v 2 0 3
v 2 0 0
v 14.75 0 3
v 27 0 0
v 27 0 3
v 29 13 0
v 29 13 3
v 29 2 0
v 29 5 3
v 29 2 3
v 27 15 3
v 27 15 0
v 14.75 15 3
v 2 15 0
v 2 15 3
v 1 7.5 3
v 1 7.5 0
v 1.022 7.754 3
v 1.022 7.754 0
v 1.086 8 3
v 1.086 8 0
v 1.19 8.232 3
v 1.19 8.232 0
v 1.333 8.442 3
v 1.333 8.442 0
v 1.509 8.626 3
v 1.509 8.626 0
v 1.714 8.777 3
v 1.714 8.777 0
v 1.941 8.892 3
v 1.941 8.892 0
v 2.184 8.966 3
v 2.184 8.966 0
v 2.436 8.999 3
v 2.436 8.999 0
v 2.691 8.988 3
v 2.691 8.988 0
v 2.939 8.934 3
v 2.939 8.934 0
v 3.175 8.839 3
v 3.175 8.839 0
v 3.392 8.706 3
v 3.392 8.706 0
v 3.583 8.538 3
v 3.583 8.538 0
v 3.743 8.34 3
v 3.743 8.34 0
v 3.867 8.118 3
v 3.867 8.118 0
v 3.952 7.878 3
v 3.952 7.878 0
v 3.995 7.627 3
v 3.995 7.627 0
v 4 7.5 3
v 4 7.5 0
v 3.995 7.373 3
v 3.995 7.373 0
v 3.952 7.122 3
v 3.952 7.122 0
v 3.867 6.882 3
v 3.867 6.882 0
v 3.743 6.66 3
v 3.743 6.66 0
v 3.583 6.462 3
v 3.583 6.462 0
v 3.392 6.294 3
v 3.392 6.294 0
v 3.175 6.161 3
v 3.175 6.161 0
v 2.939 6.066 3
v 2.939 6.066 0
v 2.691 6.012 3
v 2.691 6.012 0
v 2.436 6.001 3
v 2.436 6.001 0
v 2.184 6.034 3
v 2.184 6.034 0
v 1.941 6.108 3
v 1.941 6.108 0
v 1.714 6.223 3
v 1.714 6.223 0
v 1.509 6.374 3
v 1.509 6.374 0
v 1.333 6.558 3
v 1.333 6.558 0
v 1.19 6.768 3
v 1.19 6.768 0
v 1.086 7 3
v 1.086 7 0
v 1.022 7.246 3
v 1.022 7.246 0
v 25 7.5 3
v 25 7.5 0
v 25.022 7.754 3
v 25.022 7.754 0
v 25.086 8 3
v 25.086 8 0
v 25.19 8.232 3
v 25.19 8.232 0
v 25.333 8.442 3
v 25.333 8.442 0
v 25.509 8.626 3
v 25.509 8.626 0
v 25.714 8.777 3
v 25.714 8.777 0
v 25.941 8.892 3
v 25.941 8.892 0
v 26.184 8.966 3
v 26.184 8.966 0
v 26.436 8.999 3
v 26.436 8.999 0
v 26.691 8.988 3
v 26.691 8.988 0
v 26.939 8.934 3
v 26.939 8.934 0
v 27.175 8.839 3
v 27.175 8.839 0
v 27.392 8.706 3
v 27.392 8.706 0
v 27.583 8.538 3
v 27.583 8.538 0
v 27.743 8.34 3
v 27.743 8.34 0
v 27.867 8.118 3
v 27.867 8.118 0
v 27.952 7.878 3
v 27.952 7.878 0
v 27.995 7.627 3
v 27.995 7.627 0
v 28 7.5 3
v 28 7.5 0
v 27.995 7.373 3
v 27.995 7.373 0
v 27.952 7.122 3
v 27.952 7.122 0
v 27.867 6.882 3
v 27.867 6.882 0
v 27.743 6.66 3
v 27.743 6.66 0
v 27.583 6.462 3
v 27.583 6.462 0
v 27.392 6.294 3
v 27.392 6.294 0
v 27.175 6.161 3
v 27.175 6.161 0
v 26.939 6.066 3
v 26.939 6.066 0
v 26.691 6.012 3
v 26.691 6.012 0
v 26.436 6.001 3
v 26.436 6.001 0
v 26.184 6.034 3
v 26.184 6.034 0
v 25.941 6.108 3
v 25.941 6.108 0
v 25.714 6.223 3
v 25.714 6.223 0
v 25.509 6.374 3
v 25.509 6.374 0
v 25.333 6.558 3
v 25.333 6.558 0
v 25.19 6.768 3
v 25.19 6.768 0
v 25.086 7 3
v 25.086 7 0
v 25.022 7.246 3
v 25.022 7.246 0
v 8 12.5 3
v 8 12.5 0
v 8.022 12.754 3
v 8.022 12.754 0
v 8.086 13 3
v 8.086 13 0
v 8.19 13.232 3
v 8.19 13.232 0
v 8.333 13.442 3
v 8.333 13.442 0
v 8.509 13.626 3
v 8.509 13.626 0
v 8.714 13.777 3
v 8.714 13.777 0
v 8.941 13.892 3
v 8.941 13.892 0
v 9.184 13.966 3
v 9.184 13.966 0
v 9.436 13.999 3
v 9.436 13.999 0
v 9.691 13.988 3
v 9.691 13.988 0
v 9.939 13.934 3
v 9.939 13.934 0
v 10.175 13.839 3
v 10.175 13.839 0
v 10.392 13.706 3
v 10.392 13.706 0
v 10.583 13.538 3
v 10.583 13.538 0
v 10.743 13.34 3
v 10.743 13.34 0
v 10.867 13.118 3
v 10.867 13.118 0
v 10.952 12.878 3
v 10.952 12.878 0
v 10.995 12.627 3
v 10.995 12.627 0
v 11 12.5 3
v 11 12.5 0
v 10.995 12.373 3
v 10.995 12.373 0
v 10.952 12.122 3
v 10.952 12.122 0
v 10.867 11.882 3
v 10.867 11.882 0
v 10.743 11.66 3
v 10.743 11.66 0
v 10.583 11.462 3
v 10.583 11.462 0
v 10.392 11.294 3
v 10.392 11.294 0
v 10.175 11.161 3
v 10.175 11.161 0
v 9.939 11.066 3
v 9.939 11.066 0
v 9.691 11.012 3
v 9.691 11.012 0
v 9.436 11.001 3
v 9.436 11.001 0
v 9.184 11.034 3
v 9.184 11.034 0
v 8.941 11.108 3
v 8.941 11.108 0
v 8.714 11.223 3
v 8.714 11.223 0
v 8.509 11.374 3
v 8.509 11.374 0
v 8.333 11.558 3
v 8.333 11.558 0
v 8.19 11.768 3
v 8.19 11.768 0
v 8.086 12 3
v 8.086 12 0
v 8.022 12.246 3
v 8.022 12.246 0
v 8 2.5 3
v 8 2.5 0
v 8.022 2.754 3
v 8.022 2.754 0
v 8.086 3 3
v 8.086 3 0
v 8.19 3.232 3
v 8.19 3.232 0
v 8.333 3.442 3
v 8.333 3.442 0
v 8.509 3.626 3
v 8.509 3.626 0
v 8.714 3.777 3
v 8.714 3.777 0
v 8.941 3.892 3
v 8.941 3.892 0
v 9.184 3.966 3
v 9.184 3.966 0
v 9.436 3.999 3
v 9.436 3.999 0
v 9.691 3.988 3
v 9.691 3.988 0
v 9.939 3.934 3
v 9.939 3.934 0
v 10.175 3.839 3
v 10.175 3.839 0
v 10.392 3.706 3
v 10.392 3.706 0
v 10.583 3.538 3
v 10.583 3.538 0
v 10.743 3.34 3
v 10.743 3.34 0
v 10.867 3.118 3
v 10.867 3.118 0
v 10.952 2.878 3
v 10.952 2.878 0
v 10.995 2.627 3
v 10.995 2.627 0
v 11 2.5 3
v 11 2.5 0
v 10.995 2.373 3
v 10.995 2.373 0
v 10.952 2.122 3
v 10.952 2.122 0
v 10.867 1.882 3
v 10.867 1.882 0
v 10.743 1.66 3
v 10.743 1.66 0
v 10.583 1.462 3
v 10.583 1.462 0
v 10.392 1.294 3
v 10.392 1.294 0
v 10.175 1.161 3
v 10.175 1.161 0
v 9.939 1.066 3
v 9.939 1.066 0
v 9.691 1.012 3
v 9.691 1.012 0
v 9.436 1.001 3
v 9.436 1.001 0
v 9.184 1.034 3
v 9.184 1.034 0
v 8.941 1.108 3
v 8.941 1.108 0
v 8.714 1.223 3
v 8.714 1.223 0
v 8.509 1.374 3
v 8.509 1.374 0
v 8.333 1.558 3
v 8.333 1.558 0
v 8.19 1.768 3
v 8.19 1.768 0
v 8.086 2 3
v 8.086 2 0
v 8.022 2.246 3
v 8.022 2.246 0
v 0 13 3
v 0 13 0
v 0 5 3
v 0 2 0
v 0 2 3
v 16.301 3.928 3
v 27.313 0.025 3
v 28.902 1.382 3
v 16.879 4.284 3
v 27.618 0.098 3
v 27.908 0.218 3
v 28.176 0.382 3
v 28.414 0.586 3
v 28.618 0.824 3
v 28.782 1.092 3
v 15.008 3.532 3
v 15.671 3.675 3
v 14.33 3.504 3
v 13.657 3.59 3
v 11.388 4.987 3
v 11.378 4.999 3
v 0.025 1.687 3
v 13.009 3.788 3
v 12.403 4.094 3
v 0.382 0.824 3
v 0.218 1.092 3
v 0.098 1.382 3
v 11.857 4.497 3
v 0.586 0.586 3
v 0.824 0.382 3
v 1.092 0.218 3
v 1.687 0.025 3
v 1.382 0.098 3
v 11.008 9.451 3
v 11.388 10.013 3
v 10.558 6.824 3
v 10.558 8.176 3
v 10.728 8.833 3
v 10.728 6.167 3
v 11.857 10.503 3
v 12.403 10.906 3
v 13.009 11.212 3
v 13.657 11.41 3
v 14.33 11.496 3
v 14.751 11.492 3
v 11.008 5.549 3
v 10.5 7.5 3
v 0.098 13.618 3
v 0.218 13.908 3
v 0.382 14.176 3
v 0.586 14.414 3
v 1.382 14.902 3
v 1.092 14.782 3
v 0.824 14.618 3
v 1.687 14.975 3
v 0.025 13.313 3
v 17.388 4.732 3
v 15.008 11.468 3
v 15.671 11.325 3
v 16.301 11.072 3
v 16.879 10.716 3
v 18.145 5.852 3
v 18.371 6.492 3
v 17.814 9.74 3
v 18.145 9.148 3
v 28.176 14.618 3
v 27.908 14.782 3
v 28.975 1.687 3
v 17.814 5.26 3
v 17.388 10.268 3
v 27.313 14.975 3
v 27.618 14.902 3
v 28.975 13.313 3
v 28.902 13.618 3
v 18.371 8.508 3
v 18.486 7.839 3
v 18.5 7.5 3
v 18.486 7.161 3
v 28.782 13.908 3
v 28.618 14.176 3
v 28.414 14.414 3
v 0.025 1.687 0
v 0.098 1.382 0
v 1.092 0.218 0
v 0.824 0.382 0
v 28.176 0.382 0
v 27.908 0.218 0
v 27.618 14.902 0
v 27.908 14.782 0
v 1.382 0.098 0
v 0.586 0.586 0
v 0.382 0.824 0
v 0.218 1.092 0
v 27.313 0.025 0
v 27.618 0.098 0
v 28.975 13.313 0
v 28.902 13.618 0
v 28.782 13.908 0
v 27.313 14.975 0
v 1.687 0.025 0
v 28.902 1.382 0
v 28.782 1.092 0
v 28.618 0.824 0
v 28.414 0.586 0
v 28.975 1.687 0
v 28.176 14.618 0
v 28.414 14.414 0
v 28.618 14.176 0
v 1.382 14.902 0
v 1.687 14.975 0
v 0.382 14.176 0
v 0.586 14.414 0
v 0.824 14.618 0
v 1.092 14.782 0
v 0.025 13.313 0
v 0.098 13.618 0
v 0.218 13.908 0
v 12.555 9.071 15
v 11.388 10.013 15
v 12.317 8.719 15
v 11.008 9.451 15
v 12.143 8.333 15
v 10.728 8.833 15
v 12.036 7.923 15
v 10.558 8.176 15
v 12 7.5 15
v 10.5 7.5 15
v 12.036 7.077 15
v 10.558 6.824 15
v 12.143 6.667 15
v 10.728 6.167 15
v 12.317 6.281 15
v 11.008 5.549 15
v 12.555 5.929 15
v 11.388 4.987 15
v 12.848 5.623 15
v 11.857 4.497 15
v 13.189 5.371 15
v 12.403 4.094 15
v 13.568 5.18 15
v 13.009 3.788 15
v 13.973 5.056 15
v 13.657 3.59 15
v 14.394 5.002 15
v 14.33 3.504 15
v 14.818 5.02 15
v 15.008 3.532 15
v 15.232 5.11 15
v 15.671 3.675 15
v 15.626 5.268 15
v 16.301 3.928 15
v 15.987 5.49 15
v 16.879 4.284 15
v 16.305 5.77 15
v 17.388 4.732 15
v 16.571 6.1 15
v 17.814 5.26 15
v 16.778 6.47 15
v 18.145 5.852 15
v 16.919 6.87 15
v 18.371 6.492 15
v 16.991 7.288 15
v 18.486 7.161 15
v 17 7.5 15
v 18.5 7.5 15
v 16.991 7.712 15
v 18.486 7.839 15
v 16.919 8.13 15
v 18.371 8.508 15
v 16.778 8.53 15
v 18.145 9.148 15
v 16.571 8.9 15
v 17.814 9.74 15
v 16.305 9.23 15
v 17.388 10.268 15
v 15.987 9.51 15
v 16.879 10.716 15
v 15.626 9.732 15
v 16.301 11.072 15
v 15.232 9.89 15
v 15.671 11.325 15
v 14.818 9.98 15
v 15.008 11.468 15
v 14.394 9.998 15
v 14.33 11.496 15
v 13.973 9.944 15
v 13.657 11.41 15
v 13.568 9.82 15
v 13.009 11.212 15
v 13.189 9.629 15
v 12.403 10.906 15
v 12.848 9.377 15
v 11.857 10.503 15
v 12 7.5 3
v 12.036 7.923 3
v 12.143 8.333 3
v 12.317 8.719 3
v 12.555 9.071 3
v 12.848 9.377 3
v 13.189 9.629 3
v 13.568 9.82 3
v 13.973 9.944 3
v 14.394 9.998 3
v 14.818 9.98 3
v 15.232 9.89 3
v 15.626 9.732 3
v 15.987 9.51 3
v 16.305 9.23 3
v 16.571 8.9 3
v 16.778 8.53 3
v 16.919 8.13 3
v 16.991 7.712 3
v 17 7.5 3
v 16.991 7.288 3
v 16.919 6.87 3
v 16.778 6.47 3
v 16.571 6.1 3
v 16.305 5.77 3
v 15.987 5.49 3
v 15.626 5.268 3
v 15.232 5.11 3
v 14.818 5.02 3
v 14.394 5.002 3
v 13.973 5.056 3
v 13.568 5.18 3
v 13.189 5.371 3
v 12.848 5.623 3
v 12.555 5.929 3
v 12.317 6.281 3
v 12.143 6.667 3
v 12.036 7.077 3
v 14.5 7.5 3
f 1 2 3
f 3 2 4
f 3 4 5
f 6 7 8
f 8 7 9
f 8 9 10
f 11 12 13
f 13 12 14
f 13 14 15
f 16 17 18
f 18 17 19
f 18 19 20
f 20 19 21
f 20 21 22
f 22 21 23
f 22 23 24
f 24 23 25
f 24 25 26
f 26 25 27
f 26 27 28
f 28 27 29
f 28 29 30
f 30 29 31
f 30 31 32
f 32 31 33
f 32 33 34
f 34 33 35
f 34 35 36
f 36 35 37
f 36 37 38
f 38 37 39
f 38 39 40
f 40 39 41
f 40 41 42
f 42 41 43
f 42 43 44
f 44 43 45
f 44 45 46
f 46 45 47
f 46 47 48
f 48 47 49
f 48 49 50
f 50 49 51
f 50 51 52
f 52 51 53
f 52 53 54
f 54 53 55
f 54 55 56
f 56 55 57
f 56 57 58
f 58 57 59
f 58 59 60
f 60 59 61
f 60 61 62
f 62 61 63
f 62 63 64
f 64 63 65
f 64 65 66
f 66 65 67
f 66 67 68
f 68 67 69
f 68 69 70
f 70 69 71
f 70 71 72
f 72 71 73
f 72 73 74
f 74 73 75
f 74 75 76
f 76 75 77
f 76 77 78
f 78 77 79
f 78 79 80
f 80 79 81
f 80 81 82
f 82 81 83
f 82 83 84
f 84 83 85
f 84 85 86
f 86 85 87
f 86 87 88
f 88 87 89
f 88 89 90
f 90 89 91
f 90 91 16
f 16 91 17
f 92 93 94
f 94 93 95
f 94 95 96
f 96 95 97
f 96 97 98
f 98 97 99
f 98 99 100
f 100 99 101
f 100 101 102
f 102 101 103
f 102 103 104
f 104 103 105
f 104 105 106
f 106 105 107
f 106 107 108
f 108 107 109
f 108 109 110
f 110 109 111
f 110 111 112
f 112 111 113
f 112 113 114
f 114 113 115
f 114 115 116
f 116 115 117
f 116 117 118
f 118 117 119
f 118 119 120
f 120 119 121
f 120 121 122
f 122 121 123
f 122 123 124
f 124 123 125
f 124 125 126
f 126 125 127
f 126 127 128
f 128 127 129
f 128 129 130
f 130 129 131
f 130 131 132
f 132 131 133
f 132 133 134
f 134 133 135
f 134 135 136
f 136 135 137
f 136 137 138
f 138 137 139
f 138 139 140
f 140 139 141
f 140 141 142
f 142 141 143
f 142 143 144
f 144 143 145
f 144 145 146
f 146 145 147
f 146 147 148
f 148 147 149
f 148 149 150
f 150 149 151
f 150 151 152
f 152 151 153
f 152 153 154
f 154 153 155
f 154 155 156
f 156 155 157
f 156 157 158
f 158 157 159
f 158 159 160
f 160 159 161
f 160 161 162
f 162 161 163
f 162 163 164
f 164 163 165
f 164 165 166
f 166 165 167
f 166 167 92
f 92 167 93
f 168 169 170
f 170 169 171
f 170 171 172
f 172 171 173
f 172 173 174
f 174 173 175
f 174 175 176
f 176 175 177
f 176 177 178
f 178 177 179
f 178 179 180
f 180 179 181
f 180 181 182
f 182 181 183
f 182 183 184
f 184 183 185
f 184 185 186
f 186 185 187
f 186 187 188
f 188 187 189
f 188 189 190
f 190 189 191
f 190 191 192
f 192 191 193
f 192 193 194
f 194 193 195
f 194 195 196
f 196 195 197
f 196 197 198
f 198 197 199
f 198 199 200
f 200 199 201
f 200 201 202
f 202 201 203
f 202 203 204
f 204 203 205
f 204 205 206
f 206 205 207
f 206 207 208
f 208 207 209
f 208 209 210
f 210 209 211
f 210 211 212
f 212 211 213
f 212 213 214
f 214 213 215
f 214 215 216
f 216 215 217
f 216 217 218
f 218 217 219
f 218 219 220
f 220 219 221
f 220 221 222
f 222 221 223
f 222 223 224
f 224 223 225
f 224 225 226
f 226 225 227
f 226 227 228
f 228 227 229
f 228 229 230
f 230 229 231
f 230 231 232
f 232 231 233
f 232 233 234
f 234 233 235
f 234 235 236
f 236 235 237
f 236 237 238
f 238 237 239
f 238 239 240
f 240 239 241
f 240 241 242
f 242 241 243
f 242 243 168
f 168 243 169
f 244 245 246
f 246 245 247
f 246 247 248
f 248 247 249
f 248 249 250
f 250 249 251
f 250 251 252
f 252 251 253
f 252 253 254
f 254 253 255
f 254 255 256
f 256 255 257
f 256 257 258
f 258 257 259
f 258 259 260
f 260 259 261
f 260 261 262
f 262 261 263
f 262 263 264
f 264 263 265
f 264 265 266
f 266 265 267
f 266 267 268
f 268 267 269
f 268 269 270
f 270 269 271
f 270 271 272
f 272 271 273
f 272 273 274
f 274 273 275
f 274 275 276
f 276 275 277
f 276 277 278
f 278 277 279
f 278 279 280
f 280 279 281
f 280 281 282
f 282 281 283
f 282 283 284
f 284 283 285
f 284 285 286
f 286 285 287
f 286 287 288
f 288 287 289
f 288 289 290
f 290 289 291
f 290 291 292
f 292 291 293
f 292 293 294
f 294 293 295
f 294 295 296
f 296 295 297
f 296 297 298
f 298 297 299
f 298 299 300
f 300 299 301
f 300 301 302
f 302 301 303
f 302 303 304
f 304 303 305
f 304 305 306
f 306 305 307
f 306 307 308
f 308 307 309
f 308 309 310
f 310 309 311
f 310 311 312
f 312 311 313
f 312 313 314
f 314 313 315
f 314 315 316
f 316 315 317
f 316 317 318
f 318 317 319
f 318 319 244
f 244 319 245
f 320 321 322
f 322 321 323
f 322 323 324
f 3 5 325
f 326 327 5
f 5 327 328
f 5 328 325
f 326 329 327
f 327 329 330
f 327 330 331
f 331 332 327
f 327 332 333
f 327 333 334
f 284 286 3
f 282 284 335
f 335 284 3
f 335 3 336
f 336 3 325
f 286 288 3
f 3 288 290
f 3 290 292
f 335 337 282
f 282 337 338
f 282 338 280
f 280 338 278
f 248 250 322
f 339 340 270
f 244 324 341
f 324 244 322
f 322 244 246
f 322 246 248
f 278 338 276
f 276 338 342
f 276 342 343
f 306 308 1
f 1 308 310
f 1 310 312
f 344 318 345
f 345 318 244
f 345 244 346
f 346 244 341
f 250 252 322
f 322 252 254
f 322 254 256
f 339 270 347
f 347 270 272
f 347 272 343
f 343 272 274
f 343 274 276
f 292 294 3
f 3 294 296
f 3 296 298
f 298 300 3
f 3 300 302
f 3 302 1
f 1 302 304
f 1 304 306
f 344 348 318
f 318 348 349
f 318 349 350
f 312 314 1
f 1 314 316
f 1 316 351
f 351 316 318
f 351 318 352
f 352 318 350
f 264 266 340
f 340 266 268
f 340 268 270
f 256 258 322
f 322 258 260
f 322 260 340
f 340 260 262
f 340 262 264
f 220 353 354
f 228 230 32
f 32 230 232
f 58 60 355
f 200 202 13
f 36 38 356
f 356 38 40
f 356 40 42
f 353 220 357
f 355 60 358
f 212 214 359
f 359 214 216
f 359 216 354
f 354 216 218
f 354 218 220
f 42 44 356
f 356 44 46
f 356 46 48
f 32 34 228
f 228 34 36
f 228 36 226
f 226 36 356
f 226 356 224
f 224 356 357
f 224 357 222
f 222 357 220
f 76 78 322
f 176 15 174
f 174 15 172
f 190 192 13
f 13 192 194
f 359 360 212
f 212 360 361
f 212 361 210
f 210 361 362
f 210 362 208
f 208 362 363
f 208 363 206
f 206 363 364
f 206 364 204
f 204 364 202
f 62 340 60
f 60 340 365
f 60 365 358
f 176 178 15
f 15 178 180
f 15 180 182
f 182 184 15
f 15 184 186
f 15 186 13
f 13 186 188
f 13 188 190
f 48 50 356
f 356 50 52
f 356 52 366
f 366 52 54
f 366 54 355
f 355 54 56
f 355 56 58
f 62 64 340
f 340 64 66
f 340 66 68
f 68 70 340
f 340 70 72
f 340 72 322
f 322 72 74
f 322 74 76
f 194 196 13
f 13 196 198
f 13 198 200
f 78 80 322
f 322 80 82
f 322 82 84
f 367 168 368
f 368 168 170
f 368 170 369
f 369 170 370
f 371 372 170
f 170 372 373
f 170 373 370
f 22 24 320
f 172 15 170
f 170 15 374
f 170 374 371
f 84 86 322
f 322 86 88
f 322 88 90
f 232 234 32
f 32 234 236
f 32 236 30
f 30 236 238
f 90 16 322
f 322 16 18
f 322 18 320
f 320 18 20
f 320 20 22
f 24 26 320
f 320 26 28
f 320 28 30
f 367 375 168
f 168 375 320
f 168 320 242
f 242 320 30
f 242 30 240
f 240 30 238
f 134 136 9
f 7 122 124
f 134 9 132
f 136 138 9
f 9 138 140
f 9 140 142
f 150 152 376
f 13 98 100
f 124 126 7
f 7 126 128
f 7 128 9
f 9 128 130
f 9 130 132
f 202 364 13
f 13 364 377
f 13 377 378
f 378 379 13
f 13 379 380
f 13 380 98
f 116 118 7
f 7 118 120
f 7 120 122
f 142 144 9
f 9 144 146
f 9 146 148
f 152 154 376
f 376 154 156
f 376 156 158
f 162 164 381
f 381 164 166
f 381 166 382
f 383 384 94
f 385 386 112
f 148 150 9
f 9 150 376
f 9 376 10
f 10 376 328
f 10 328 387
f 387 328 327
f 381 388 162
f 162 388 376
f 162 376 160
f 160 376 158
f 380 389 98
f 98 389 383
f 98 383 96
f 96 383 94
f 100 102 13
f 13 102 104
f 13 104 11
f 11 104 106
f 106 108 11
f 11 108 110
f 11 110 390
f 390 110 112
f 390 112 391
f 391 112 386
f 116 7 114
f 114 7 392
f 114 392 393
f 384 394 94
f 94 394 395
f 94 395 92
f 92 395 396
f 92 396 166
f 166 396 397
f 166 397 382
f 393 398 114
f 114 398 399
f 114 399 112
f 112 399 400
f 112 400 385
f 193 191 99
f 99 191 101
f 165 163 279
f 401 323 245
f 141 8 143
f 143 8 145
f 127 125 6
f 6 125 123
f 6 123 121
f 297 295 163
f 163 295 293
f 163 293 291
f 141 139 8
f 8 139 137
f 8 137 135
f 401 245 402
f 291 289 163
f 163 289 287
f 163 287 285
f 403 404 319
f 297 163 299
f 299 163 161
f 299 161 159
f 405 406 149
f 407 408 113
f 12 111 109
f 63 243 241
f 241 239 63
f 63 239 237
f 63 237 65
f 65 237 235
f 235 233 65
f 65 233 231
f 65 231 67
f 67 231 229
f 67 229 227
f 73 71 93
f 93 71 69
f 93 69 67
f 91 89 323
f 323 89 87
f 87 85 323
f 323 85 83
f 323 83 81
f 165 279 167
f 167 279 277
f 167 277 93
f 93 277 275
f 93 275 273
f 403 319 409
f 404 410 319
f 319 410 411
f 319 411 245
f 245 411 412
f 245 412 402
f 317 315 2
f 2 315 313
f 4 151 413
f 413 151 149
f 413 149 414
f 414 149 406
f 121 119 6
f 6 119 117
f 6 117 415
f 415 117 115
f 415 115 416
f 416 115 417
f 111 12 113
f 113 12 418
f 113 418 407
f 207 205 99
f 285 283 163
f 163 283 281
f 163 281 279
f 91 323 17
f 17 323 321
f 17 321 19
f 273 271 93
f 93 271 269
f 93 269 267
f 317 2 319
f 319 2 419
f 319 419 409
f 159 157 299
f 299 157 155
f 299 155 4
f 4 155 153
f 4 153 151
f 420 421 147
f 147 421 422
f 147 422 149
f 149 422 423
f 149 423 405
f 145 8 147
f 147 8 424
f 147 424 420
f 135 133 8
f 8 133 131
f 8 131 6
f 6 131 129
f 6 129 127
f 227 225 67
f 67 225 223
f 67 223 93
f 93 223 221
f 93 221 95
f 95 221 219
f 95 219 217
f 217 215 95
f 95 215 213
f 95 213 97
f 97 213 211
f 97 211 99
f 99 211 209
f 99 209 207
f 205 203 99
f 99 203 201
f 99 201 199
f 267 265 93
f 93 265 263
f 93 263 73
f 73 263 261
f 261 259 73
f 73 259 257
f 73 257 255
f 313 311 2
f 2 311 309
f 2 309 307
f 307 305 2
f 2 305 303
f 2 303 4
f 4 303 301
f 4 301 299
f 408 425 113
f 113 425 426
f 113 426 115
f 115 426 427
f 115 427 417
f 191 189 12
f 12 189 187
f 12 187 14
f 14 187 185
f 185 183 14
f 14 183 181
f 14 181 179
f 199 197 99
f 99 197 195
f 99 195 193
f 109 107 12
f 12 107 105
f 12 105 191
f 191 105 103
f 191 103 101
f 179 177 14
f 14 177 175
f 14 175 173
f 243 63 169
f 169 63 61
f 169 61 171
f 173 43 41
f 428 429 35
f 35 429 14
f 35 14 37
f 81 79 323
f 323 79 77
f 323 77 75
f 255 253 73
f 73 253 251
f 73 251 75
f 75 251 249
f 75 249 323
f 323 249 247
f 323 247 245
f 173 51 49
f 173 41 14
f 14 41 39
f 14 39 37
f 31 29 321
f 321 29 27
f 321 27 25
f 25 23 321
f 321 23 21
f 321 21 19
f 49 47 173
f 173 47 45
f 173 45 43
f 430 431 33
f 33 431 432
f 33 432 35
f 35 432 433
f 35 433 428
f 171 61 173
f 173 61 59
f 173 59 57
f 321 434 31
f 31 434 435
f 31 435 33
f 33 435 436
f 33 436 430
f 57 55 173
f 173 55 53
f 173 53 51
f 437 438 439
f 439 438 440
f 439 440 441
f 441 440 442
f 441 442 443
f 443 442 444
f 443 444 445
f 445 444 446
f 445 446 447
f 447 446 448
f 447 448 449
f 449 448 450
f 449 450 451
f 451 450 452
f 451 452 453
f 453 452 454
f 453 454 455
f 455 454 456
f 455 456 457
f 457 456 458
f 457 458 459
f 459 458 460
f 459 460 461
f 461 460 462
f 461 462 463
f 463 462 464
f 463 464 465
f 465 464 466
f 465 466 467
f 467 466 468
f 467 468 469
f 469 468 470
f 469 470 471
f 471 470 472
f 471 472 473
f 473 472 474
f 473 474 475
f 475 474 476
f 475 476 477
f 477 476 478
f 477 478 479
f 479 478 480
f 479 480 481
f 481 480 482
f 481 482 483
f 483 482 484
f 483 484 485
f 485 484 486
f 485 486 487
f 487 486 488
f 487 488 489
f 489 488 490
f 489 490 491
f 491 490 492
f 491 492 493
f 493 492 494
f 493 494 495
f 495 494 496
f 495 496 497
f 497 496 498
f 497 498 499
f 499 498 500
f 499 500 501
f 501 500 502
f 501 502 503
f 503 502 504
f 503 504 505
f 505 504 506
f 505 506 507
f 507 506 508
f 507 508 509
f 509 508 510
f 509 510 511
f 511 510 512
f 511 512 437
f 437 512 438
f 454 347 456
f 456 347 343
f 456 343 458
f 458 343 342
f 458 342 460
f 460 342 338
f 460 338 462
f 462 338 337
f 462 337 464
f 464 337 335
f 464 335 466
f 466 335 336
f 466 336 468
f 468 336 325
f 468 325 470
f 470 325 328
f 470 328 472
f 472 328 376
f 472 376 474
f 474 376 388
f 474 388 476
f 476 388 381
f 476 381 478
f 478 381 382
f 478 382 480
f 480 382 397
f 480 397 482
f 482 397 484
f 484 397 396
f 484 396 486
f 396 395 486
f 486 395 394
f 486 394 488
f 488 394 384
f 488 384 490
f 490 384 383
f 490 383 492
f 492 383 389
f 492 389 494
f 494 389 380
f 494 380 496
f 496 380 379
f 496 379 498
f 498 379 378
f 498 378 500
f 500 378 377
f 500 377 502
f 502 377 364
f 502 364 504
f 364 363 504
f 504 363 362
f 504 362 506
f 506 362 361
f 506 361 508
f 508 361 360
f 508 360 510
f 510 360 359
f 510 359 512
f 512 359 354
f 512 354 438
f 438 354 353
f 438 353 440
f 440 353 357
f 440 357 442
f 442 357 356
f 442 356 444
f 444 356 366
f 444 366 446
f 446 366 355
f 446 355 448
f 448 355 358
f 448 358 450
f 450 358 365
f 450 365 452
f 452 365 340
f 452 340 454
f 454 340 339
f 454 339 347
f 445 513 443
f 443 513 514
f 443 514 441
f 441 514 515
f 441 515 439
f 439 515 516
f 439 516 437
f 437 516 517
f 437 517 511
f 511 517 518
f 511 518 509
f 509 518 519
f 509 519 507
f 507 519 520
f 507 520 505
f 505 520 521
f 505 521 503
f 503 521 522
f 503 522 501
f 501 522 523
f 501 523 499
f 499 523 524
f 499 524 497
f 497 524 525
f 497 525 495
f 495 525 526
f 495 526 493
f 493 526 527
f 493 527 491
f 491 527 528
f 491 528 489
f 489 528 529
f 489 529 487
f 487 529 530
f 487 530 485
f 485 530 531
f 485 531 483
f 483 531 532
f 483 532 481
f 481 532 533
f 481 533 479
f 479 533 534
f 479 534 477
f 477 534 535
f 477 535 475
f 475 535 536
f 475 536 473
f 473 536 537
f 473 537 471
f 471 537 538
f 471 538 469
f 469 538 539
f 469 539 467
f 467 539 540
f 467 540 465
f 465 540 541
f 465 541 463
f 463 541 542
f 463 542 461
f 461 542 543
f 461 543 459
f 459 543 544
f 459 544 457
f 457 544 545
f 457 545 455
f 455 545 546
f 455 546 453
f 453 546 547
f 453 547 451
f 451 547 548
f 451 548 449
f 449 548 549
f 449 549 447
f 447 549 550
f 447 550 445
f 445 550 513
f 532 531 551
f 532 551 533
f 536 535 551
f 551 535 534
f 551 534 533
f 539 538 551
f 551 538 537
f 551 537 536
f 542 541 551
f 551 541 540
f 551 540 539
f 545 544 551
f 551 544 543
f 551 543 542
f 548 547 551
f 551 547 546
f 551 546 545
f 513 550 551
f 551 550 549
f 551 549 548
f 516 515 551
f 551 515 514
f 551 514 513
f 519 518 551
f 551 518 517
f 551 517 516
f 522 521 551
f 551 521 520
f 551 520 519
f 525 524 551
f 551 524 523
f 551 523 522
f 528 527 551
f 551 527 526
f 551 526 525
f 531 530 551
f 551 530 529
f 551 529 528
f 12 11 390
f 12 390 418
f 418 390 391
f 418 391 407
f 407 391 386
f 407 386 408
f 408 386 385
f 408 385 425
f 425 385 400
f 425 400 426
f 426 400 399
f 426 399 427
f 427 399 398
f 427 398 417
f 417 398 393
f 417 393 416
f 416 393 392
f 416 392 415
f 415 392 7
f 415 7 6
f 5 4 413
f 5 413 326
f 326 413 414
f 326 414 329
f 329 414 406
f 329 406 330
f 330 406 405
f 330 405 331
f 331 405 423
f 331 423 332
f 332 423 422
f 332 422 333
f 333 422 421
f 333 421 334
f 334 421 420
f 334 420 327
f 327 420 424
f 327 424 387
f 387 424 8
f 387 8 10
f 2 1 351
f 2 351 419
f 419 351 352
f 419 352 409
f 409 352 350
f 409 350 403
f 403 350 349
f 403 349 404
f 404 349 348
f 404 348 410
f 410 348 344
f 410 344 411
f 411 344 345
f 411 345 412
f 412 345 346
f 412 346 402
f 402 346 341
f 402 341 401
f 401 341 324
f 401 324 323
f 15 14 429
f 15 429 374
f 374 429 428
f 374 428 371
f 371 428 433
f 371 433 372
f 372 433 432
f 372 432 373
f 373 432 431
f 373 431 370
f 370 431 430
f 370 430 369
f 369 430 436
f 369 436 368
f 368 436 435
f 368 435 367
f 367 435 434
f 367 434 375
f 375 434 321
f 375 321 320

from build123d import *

# Parameters (mm, degrees)
SKETCH_1_W        = 29
SKETCH_1_H        = 15
SKETCH_1_R        = 1.5
SKETCH_1_R_2      = 2.5
EXTRUDE_1_DEPTH   = 3
SKETCH_1_3_R      = 4
SKETCH_1_3_R_2    = 2.5
EXTRUDE_1_2_DEPTH = 15
FILLET_1_R        = 2


with BuildPart() as part:
    # 草图1 → Extrude 1 (new body)
    # profile 1 of 2: a face of its own
    with BuildSketch(Plane.XY):
        with Locations((14.5, 7.5)):
            Rectangle(SKETCH_1_W, SKETCH_1_H)
        with Locations((9.5, 2.5)):
            Circle(SKETCH_1_R, mode=Mode.SUBTRACT)
        with Locations((9.5, 12.5)):
            Circle(SKETCH_1_R, mode=Mode.SUBTRACT)
        with Locations((26.5, 7.5)):
            Circle(SKETCH_1_R, mode=Mode.SUBTRACT)
        with Locations((2.5, 7.5)):
            Circle(SKETCH_1_R, mode=Mode.SUBTRACT)
        with Locations((14.5, 7.5)):
            Circle(SKETCH_1_R_2, mode=Mode.SUBTRACT)
    # profile 2 of 2: a face of its own
    with BuildSketch(Plane.XY):
        with Locations((14.5, 7.5)):
            Circle(SKETCH_1_R_2)
    extrude(amount=EXTRUDE_1_DEPTH)

    # 草图1<3> → Extrude 1 2 (add)
    with BuildSketch(Plane.XY):
        with Locations((14.5, 7.5)):
            Circle(SKETCH_1_3_R)
        with Locations((14.5, 7.5)):
            Circle(SKETCH_1_3_R_2, mode=Mode.SUBTRACT)
    extrude(amount=EXTRUDE_1_2_DEPTH)

    # 圆角1
    fillet_1_edges = [part.edges().sort_by_distance(p)[0] for p in [
        (0, 0, 1.5),
        (0, 15, 1.5),
        (29, 15, 1.5),
        (29, 0, 1.5),
    ]]
    fillet(fillet_1_edges, radius=FILLET_1_R)


solid = part.part
